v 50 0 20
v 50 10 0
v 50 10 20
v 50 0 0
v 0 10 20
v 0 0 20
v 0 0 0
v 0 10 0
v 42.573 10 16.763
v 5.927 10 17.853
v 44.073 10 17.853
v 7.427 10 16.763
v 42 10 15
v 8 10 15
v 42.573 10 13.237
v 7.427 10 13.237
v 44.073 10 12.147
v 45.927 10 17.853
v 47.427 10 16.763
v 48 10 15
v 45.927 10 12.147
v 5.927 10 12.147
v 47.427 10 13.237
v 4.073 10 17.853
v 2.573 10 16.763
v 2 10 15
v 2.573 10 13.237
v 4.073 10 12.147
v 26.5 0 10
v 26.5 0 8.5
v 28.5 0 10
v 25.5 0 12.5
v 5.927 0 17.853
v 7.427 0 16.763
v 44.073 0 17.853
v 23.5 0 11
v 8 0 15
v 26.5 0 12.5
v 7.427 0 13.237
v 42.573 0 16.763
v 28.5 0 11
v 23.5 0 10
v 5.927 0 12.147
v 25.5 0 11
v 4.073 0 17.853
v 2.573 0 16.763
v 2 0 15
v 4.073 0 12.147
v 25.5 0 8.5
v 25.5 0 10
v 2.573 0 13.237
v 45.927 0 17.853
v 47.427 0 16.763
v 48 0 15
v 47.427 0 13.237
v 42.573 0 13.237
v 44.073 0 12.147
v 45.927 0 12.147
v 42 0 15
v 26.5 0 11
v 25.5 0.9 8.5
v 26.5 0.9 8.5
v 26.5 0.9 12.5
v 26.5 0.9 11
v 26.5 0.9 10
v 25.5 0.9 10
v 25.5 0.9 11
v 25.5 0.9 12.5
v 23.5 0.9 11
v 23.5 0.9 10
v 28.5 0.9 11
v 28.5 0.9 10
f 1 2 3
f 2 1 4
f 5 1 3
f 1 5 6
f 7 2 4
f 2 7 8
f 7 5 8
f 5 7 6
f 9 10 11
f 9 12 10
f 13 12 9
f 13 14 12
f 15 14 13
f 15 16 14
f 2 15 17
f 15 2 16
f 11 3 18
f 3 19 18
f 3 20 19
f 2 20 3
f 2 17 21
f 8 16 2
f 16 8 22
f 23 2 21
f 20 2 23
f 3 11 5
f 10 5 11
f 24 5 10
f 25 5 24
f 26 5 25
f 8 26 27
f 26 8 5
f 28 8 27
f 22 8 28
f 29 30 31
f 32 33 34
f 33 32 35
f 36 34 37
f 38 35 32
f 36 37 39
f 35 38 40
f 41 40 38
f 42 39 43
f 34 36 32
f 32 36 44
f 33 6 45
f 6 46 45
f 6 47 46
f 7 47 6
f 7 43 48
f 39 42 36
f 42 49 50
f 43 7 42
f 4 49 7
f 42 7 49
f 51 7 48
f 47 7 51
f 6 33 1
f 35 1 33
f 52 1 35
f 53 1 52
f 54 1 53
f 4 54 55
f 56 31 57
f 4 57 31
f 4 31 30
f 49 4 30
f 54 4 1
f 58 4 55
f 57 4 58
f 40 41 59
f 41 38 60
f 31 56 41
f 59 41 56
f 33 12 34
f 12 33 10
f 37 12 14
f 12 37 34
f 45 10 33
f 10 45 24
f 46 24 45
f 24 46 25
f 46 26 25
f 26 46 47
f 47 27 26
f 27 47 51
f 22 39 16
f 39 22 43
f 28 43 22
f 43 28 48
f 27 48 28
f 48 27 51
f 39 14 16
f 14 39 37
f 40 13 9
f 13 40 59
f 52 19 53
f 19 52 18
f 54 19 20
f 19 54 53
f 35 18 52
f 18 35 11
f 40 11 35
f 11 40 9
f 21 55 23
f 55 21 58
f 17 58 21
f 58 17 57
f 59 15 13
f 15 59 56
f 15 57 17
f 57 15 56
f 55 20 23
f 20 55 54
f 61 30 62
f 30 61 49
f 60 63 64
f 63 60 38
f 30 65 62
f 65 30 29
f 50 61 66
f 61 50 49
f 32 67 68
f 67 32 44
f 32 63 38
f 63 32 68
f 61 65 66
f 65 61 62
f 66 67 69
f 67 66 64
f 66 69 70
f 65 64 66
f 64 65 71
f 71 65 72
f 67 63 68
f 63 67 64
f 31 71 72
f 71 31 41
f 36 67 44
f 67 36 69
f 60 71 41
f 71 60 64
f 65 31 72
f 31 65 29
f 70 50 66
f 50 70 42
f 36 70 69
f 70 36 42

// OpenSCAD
difference(){
    cube([50,10,20]);
    translate([5,10,15])
    rotate([90,0,0])
        cylinder(h=10.1, r=3);
    translate([45,10,15])
    rotate([90,0,0])
        cylinder(h=10.1, r=3);
     color("blue")
    translate([25.5,-0.1,12.5])
    rotate([0,90,0])
    cube([4,1,1]);
/////////////////////////////
/////////////////////////////
    color("red")
    translate([23.5,-0.1,10])
    rotate([0,0,0])
    cube([5,1,1]);
}


   
